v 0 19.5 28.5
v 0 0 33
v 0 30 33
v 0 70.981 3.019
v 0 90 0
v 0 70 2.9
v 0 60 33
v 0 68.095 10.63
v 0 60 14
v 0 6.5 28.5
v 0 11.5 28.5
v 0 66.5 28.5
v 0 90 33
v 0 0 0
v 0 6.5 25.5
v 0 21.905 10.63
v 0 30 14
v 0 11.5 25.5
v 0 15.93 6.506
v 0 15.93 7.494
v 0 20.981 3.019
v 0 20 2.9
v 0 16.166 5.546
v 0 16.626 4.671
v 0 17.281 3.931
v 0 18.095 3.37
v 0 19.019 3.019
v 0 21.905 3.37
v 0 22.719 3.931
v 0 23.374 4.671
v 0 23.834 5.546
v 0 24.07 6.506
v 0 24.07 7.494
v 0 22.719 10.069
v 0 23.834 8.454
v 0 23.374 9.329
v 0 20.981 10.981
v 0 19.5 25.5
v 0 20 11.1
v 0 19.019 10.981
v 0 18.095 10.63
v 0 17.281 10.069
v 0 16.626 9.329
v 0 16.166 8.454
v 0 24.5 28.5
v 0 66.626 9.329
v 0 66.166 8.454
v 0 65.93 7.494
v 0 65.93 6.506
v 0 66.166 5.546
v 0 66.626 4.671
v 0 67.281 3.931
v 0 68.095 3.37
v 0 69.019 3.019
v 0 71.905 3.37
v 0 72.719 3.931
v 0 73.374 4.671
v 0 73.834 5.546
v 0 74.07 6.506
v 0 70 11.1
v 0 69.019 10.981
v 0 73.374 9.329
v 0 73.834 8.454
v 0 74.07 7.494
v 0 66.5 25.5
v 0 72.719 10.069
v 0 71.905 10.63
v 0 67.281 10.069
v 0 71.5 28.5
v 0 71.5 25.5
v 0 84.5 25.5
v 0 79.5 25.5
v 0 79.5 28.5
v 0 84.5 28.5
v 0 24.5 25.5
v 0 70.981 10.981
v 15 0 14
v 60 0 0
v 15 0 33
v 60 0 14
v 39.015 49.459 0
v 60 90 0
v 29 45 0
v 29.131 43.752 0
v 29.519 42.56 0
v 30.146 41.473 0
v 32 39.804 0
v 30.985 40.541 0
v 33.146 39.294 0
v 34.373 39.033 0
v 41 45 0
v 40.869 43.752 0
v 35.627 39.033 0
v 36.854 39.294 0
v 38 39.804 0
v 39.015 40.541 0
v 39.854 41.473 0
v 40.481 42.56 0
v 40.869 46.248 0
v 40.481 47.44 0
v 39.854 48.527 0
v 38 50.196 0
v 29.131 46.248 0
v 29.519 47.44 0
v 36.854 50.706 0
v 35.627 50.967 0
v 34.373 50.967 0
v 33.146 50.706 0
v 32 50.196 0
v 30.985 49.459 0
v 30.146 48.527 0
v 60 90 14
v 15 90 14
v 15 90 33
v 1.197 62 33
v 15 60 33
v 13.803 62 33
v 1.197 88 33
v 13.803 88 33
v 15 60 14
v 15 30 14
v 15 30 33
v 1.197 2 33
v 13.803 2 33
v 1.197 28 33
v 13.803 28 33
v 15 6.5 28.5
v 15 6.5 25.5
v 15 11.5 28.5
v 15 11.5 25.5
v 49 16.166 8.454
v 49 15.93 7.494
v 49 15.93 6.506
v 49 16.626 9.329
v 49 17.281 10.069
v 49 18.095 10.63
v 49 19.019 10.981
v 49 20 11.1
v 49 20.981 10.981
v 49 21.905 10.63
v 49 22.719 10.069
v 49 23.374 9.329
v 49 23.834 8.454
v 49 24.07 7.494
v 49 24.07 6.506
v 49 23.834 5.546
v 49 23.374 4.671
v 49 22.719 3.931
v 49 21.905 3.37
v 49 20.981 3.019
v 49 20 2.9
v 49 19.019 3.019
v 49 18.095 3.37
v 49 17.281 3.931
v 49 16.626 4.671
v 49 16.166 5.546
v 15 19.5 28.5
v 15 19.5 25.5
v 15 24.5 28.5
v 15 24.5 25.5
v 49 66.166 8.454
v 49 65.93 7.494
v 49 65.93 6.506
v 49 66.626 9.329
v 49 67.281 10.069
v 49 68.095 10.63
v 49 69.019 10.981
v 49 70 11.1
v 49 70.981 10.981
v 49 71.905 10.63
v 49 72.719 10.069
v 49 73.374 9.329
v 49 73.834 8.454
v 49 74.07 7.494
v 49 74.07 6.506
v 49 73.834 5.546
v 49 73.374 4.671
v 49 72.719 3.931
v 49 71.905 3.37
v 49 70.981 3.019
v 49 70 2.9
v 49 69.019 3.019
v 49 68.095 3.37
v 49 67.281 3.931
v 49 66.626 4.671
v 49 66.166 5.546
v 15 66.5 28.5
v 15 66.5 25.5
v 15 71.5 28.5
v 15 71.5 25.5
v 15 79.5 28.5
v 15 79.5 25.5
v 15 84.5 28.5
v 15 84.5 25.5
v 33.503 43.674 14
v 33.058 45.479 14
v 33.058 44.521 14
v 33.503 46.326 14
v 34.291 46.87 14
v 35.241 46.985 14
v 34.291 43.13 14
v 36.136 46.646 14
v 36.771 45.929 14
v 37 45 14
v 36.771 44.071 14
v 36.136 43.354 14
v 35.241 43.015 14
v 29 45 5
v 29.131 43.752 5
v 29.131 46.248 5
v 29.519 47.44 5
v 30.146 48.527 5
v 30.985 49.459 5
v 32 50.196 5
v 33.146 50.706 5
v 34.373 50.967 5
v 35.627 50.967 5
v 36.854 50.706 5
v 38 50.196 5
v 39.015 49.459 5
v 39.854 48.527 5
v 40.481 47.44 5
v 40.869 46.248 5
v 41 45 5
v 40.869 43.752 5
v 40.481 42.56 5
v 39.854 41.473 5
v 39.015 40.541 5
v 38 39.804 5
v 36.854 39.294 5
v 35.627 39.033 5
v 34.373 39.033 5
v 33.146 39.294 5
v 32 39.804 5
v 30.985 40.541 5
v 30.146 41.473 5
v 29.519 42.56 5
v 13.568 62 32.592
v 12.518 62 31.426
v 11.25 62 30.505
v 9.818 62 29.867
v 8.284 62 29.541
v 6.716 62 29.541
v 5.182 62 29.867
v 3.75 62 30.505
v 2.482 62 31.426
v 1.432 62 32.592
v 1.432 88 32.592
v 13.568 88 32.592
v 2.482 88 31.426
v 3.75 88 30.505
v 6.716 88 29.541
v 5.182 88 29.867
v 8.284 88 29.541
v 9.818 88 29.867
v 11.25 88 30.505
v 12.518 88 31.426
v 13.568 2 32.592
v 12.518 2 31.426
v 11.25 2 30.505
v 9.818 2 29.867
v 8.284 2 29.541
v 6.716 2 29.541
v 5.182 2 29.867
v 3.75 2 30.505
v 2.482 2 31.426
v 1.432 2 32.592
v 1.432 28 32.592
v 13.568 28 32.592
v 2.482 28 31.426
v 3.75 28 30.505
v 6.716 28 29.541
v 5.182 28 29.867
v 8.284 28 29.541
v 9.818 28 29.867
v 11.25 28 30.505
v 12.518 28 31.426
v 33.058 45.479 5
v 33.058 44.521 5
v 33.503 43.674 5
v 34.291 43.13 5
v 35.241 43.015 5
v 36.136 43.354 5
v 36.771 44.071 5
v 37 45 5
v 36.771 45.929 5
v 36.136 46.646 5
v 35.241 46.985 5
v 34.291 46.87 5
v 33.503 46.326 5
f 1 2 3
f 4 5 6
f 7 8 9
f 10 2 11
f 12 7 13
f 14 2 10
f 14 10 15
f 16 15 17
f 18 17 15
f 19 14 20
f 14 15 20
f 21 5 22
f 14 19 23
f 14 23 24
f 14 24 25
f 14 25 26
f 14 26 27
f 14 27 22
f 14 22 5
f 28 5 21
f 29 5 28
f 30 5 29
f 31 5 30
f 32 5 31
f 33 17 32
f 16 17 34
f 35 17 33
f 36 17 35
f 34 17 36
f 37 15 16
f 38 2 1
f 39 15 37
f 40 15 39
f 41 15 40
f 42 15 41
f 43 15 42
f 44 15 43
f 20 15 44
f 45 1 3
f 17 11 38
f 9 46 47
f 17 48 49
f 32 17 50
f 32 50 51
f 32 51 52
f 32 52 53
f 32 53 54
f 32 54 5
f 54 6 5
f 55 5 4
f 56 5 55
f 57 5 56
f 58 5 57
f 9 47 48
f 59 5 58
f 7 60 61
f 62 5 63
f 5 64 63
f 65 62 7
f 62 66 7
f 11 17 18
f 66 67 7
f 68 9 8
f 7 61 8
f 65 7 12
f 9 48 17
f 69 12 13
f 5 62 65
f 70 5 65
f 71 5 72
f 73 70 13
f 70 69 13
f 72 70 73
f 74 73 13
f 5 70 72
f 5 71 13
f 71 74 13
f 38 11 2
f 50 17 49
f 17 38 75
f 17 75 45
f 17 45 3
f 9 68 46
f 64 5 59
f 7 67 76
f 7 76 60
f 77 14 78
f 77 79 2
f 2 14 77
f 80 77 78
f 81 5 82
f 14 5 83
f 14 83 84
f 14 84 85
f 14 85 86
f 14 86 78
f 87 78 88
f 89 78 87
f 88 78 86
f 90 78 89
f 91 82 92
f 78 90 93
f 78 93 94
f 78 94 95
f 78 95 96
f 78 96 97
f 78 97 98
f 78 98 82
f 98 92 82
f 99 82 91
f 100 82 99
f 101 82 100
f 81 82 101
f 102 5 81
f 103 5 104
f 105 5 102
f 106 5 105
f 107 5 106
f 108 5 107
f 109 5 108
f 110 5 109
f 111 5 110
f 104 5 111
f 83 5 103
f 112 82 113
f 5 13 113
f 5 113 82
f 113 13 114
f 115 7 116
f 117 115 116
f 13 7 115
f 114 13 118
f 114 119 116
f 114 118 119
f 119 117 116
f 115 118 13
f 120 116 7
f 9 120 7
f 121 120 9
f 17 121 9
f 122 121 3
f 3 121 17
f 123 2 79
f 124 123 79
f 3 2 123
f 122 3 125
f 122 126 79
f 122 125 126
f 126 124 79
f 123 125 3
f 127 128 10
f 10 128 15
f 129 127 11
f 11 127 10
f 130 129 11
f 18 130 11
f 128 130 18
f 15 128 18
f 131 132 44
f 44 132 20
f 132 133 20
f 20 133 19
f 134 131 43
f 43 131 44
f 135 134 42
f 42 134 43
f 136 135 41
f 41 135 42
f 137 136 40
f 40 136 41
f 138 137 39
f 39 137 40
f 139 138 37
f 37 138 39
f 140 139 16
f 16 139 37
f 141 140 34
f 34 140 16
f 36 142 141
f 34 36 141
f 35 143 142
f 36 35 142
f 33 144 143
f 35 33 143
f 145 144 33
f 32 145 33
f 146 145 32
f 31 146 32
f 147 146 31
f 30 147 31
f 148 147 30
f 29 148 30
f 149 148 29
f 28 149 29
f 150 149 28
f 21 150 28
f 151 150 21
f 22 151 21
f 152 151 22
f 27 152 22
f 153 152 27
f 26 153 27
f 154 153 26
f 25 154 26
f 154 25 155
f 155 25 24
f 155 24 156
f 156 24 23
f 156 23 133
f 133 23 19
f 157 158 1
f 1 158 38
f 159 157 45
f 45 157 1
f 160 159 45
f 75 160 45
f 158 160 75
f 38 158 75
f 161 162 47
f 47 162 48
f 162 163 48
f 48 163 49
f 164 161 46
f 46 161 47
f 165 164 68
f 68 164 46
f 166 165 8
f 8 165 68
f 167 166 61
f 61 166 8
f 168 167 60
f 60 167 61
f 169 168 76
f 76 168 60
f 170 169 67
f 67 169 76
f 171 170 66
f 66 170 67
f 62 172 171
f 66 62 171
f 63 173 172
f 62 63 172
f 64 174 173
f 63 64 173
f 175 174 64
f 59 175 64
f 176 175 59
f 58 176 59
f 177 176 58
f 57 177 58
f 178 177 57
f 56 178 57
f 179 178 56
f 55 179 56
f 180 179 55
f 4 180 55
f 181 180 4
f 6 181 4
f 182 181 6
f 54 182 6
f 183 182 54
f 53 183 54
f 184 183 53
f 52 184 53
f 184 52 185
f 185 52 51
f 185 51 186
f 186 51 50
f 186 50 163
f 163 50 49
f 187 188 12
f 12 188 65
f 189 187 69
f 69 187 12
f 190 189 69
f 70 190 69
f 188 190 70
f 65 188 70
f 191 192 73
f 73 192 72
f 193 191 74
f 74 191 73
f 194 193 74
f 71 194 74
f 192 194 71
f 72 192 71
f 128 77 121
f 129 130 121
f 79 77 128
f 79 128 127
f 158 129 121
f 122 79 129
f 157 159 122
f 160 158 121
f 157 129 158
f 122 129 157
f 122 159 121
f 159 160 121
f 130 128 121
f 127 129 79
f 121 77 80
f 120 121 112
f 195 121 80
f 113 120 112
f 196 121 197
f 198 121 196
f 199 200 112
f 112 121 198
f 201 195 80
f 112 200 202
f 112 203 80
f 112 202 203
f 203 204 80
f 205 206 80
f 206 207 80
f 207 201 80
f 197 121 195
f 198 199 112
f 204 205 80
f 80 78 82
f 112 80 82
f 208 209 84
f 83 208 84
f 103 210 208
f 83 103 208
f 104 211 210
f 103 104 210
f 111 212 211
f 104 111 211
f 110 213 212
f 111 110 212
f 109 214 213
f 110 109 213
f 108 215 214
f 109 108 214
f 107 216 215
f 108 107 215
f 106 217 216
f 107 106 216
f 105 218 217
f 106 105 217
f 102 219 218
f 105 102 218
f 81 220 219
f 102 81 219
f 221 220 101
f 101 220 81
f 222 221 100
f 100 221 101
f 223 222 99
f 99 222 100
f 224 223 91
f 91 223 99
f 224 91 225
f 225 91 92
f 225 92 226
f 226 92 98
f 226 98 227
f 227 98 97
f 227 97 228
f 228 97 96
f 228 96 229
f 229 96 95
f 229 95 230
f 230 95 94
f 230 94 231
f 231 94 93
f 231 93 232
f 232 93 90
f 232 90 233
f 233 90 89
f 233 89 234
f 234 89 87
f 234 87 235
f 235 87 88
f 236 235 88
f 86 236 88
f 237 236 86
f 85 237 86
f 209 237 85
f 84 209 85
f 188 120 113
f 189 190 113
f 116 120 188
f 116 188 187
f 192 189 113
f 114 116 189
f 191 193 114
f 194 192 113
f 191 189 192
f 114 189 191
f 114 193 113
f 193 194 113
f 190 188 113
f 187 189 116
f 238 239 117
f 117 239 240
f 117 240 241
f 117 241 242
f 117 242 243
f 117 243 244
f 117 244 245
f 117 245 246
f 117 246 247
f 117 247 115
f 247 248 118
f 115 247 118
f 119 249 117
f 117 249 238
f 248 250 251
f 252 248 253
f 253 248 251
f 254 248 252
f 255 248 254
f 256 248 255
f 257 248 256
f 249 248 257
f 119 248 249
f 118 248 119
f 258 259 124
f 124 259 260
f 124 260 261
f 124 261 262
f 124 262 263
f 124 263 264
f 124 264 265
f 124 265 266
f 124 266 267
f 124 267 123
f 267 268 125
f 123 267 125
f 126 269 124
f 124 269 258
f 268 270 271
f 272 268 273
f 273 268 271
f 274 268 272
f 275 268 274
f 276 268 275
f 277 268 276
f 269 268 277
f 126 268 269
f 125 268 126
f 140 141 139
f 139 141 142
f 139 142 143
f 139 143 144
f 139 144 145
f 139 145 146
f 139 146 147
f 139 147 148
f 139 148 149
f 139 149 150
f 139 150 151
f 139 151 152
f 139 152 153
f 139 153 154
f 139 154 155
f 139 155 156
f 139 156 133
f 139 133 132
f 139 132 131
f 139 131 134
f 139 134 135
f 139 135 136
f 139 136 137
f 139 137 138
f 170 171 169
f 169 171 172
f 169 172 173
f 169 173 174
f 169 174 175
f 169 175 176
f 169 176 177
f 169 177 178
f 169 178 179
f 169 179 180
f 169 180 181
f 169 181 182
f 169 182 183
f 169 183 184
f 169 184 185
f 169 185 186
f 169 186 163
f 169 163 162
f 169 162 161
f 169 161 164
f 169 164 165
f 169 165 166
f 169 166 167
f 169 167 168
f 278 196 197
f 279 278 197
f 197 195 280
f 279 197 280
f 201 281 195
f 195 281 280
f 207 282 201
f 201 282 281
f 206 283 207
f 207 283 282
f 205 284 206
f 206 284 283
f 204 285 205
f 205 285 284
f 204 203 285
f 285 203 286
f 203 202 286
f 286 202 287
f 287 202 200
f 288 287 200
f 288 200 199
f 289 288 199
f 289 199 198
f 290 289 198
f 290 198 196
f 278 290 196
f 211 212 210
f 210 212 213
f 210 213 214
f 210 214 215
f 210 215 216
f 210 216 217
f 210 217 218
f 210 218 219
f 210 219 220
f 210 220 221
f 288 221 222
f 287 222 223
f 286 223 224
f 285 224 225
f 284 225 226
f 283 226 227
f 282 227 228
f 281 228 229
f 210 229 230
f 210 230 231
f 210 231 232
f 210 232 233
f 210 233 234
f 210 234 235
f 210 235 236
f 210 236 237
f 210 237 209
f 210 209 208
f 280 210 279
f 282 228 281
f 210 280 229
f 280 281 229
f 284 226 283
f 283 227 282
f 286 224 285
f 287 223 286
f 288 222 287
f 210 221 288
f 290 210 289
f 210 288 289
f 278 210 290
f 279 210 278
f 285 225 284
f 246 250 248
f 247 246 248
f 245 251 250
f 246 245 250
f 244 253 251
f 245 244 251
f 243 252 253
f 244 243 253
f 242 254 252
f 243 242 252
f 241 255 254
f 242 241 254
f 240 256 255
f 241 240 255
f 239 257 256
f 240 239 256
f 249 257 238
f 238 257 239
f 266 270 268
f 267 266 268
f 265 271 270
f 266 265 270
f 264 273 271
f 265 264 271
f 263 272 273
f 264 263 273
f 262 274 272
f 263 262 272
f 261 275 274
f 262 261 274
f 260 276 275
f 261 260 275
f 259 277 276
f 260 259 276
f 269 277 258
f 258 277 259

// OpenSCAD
barwidth = 20;
width_ridge=4;
widthNema17=43;
nema17holeOffset =6;
nema17innerHole=25/2;
nema17Shaft=8/2;
motorThickNess=5;
offsetx =9;
offsety  =9;
barpositionz=30;
rodwidth =8.2;
nutwidth=16;

height = 90;
width = 60;

bearingod=15;
topbardistance=23;
bearinglength=26;
od624=13;
odpulley=12;
timingbeltthickness=1;

thickness=14;
spacing_bars = 50;
largeCircle = 70.0;
holeSize=5.5;
bardistance=50;
bearingoffset=2;


holes = [
	[nema17holeOffset+ offsetx+ 31/2 - od624/2 -odpulley/2+bearingod+4/2,height/2,4]
];



difference() {
union() {

cube([width,height,thickness],false);

translate([0,0,thickness]) 
	cube([bearingod,height,topbardistance-4],false);

}



translate([-1,(height/2)-(bardistance/2),thickness/2]) 
	rotate([0,90,0])
		cylinder(h=width-10,r=rodwidth/2, center = false, $fs =1);

translate([-1,(height/2)+(bardistance/2),thickness/2]) 
	rotate([0,90,0])
		cylinder(h=width-10,r=rodwidth/2, center = false, $fs =1);

translate([bearingod/2,bearingoffset,thickness+topbardistance]) 
	rotate([-90,0])
		cylinder(h=bearinglength,r=bearingod/2, center = false, $fs =1);

translate([bearingod/2,height-bearingoffset-bearinglength,thickness+topbardistance]) 
	rotate([-90,0])
		cylinder(h=bearinglength,r=bearingod/2, center = false, $fs =1);

translate([0,bearingoffset*2+bearinglength,thickness]) 
	cube([bearingod,height-bearingoffset*4-bearinglength*2,topbardistance],false);

translate([0,0,thickness+topbardistance/2]) {
	translate([0,bearinglength/4,0])
		cube([bearingod,5,3], center = false);

	translate([0,bearinglength/4*3,0])
		cube([bearingod,5,3], center = false);

	translate([0,height-bearingoffset*2-bearinglength+bearinglength/4,0])
		cube([bearingod,5,3], center = false);

	translate([0,height-bearingoffset*2-bearinglength+bearinglength/4*3,0])
		cube([bearingod,5,3], center = false);
}

	for(i = holes) {
		translate([ i[0],i[1],0])
			cylinder(h=100,r=i[2]/2, center = false, $fs=1);
	}

translate([nema17holeOffset+ offsetx+ 31/2 - od624/2 -odpulley/2+bearingod+4/2,height/2])
cylinder(h=5,r=6, center = false, $fs=1);

}
